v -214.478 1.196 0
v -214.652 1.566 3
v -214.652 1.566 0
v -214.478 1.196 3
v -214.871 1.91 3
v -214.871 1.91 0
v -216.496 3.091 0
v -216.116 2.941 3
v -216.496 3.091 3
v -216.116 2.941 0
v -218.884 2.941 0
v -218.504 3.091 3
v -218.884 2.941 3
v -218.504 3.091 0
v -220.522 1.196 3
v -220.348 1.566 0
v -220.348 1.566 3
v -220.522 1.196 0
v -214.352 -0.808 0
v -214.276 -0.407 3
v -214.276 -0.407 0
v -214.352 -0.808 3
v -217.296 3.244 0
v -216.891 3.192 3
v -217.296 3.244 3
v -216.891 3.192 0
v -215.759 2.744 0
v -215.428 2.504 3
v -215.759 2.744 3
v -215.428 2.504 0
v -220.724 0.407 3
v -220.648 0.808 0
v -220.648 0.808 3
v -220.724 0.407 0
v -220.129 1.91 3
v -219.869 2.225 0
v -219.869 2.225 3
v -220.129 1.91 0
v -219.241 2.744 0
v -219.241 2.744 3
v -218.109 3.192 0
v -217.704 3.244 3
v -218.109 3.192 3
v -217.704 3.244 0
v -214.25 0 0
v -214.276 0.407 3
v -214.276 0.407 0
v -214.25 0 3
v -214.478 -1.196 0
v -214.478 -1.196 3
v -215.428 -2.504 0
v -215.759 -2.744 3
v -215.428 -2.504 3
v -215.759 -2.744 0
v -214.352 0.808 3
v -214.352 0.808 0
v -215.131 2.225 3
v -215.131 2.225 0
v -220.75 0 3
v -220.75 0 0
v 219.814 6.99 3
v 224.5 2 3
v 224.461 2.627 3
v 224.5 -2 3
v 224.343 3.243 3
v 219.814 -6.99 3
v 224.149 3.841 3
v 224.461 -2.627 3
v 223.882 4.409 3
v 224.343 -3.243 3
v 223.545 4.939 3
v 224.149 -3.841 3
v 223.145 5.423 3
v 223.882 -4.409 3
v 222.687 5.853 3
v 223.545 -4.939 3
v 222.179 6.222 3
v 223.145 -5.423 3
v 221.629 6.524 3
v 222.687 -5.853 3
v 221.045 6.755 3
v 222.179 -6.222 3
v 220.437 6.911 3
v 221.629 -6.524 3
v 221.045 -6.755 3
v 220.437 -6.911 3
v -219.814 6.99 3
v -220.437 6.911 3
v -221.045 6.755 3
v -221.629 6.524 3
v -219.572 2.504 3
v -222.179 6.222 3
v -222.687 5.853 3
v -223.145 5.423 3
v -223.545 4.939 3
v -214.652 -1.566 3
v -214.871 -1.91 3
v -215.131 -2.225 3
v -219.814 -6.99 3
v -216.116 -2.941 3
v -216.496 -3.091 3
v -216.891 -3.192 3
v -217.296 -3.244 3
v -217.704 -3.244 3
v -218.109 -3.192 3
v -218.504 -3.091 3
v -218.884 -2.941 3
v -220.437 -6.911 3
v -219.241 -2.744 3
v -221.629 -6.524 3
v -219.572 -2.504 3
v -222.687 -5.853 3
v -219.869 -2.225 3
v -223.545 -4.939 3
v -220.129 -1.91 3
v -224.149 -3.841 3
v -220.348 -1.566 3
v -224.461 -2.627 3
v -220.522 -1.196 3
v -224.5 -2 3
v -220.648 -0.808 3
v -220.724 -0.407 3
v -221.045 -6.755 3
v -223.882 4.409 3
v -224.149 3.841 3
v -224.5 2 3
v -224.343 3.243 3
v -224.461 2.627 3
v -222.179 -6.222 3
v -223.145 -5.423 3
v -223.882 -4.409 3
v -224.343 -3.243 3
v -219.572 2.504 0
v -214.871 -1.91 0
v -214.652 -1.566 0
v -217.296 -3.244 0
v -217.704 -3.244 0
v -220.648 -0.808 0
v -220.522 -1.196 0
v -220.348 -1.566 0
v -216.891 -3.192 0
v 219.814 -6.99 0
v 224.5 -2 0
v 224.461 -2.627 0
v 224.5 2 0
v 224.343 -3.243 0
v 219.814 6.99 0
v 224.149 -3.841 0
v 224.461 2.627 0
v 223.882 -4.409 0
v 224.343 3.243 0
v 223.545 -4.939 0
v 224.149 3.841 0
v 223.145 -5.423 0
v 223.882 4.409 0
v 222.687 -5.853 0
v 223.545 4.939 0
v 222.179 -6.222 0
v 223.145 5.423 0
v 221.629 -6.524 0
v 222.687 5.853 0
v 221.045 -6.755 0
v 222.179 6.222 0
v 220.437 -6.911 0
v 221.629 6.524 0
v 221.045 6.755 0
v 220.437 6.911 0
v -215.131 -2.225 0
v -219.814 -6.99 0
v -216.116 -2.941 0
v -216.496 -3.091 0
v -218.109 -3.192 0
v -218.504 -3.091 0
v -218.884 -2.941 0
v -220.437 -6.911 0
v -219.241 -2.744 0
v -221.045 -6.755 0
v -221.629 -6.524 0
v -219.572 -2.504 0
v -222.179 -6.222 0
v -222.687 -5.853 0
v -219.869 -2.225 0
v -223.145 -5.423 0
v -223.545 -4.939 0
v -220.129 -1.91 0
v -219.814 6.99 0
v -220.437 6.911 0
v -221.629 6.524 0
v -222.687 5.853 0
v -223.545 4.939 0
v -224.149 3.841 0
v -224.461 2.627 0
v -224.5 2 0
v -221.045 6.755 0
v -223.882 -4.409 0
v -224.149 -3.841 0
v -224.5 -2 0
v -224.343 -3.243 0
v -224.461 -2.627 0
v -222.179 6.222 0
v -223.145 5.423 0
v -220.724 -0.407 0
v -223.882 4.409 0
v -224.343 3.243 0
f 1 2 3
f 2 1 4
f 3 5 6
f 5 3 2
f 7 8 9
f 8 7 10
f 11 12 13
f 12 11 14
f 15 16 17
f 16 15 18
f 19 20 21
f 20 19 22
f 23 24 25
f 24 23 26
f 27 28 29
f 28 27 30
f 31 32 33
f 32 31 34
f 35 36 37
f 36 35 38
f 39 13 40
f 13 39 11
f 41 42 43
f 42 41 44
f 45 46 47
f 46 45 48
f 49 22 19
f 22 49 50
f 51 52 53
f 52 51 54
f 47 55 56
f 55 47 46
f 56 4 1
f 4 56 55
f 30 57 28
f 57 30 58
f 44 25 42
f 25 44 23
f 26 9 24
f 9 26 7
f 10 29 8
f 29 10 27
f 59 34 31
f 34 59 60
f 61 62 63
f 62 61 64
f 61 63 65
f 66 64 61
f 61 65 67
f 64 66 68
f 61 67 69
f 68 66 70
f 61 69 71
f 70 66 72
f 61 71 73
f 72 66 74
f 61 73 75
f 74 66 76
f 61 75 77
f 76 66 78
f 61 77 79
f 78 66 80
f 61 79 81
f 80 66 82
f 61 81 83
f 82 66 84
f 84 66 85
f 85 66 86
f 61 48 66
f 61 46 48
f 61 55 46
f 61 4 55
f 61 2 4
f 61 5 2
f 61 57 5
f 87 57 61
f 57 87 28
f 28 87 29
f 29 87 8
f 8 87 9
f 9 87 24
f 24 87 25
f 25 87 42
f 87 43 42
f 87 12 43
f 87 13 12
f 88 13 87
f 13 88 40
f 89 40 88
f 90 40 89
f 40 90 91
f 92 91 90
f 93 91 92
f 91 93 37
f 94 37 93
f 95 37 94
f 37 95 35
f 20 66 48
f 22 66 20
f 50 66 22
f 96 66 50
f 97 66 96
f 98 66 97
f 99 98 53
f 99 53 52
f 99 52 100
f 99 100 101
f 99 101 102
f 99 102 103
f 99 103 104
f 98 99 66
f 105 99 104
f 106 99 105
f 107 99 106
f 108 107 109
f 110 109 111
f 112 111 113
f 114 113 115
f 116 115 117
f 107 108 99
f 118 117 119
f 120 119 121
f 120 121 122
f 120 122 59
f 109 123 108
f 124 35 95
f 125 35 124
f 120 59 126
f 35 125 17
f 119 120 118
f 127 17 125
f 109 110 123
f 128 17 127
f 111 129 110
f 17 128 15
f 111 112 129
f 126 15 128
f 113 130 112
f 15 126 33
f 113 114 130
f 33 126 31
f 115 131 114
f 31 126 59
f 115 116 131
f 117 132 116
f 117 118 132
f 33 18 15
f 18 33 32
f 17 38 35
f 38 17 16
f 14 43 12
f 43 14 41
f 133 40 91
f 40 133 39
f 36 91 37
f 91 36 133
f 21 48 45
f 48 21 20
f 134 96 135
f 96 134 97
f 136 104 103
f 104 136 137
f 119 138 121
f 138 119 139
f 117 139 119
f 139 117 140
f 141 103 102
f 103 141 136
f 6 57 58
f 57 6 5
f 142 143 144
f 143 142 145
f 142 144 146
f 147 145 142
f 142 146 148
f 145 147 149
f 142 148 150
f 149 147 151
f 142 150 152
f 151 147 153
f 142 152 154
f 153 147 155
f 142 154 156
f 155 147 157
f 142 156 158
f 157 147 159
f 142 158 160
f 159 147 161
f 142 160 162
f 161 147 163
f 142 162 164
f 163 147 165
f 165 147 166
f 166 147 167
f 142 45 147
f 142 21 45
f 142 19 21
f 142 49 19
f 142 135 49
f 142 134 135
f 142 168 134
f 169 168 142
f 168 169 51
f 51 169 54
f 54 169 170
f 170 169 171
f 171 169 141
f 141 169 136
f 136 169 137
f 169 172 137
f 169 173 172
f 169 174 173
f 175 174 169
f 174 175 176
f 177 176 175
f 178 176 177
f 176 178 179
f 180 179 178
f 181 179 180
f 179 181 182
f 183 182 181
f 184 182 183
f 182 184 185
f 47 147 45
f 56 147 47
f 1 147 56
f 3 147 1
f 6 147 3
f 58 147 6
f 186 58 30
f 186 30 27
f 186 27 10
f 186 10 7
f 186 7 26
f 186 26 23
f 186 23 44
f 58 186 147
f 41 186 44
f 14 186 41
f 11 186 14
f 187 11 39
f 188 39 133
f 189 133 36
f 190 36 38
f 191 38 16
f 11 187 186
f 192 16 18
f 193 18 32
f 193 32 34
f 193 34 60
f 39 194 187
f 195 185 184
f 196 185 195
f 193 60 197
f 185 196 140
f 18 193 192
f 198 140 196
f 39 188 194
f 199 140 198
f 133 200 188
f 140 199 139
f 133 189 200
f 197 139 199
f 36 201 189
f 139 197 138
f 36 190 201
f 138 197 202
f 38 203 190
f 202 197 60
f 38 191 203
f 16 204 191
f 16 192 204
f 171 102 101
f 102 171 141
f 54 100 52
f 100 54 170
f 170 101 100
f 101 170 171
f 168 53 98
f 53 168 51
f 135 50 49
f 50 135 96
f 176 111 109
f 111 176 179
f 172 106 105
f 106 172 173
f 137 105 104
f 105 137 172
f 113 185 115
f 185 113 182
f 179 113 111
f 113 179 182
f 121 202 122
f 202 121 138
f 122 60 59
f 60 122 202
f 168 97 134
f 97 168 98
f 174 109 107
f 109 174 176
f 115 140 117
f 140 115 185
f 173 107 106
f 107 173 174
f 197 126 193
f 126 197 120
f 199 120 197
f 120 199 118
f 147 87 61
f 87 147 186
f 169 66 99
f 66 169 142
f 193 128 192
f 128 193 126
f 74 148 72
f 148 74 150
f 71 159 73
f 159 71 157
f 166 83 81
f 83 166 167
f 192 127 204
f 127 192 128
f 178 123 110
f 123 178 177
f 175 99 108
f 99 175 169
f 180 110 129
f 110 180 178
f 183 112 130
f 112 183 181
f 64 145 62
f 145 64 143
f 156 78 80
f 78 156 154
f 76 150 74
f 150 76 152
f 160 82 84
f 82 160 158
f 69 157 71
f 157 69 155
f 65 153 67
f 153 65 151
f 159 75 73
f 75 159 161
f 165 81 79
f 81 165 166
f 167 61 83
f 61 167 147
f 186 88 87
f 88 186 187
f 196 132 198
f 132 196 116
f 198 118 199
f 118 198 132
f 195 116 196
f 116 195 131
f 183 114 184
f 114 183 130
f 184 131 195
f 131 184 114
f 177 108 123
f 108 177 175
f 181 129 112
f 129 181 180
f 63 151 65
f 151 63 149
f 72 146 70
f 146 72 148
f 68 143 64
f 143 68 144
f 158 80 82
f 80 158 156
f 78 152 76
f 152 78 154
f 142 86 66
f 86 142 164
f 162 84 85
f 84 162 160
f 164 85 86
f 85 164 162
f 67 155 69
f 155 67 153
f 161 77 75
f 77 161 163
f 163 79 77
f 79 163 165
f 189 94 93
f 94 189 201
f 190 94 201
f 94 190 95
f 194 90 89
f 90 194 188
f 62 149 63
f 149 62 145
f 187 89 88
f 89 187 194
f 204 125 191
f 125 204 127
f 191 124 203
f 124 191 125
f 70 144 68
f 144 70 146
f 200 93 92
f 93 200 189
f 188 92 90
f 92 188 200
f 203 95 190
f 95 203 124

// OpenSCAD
$fn = 50;


difference() {
	union() {
		hull() {
			translate(v = [-219.5000000000, 2.0000000000, 0]) {
				cylinder(h = 3, r = 5);
			}
			translate(v = [219.5000000000, 2.0000000000, 0]) {
				cylinder(h = 3, r = 5);
			}
			translate(v = [-219.5000000000, -2.0000000000, 0]) {
				cylinder(h = 3, r = 5);
			}
			translate(v = [219.5000000000, -2.0000000000, 0]) {
				cylinder(h = 3, r = 5);
			}
		}
	}
	union() {
		translate(v = [-217.5000000000, 0.0000000000, 0]) {
			cylinder(h = 3, r = 3.2500000000);
		}
		translate(v = [-217.5000000000, 0.0000000000, 0]) {
			cylinder(h = 3, r = 1.8000000000);
		}
		translate(v = [-217.5000000000, 0.0000000000, 0]) {
			cylinder(h = 3, r = 1.8000000000);
		}
		translate(v = [-217.5000000000, 0.0000000000, 0]) {
			cylinder(h = 3, r = 1.8000000000);
		}
	}
}
